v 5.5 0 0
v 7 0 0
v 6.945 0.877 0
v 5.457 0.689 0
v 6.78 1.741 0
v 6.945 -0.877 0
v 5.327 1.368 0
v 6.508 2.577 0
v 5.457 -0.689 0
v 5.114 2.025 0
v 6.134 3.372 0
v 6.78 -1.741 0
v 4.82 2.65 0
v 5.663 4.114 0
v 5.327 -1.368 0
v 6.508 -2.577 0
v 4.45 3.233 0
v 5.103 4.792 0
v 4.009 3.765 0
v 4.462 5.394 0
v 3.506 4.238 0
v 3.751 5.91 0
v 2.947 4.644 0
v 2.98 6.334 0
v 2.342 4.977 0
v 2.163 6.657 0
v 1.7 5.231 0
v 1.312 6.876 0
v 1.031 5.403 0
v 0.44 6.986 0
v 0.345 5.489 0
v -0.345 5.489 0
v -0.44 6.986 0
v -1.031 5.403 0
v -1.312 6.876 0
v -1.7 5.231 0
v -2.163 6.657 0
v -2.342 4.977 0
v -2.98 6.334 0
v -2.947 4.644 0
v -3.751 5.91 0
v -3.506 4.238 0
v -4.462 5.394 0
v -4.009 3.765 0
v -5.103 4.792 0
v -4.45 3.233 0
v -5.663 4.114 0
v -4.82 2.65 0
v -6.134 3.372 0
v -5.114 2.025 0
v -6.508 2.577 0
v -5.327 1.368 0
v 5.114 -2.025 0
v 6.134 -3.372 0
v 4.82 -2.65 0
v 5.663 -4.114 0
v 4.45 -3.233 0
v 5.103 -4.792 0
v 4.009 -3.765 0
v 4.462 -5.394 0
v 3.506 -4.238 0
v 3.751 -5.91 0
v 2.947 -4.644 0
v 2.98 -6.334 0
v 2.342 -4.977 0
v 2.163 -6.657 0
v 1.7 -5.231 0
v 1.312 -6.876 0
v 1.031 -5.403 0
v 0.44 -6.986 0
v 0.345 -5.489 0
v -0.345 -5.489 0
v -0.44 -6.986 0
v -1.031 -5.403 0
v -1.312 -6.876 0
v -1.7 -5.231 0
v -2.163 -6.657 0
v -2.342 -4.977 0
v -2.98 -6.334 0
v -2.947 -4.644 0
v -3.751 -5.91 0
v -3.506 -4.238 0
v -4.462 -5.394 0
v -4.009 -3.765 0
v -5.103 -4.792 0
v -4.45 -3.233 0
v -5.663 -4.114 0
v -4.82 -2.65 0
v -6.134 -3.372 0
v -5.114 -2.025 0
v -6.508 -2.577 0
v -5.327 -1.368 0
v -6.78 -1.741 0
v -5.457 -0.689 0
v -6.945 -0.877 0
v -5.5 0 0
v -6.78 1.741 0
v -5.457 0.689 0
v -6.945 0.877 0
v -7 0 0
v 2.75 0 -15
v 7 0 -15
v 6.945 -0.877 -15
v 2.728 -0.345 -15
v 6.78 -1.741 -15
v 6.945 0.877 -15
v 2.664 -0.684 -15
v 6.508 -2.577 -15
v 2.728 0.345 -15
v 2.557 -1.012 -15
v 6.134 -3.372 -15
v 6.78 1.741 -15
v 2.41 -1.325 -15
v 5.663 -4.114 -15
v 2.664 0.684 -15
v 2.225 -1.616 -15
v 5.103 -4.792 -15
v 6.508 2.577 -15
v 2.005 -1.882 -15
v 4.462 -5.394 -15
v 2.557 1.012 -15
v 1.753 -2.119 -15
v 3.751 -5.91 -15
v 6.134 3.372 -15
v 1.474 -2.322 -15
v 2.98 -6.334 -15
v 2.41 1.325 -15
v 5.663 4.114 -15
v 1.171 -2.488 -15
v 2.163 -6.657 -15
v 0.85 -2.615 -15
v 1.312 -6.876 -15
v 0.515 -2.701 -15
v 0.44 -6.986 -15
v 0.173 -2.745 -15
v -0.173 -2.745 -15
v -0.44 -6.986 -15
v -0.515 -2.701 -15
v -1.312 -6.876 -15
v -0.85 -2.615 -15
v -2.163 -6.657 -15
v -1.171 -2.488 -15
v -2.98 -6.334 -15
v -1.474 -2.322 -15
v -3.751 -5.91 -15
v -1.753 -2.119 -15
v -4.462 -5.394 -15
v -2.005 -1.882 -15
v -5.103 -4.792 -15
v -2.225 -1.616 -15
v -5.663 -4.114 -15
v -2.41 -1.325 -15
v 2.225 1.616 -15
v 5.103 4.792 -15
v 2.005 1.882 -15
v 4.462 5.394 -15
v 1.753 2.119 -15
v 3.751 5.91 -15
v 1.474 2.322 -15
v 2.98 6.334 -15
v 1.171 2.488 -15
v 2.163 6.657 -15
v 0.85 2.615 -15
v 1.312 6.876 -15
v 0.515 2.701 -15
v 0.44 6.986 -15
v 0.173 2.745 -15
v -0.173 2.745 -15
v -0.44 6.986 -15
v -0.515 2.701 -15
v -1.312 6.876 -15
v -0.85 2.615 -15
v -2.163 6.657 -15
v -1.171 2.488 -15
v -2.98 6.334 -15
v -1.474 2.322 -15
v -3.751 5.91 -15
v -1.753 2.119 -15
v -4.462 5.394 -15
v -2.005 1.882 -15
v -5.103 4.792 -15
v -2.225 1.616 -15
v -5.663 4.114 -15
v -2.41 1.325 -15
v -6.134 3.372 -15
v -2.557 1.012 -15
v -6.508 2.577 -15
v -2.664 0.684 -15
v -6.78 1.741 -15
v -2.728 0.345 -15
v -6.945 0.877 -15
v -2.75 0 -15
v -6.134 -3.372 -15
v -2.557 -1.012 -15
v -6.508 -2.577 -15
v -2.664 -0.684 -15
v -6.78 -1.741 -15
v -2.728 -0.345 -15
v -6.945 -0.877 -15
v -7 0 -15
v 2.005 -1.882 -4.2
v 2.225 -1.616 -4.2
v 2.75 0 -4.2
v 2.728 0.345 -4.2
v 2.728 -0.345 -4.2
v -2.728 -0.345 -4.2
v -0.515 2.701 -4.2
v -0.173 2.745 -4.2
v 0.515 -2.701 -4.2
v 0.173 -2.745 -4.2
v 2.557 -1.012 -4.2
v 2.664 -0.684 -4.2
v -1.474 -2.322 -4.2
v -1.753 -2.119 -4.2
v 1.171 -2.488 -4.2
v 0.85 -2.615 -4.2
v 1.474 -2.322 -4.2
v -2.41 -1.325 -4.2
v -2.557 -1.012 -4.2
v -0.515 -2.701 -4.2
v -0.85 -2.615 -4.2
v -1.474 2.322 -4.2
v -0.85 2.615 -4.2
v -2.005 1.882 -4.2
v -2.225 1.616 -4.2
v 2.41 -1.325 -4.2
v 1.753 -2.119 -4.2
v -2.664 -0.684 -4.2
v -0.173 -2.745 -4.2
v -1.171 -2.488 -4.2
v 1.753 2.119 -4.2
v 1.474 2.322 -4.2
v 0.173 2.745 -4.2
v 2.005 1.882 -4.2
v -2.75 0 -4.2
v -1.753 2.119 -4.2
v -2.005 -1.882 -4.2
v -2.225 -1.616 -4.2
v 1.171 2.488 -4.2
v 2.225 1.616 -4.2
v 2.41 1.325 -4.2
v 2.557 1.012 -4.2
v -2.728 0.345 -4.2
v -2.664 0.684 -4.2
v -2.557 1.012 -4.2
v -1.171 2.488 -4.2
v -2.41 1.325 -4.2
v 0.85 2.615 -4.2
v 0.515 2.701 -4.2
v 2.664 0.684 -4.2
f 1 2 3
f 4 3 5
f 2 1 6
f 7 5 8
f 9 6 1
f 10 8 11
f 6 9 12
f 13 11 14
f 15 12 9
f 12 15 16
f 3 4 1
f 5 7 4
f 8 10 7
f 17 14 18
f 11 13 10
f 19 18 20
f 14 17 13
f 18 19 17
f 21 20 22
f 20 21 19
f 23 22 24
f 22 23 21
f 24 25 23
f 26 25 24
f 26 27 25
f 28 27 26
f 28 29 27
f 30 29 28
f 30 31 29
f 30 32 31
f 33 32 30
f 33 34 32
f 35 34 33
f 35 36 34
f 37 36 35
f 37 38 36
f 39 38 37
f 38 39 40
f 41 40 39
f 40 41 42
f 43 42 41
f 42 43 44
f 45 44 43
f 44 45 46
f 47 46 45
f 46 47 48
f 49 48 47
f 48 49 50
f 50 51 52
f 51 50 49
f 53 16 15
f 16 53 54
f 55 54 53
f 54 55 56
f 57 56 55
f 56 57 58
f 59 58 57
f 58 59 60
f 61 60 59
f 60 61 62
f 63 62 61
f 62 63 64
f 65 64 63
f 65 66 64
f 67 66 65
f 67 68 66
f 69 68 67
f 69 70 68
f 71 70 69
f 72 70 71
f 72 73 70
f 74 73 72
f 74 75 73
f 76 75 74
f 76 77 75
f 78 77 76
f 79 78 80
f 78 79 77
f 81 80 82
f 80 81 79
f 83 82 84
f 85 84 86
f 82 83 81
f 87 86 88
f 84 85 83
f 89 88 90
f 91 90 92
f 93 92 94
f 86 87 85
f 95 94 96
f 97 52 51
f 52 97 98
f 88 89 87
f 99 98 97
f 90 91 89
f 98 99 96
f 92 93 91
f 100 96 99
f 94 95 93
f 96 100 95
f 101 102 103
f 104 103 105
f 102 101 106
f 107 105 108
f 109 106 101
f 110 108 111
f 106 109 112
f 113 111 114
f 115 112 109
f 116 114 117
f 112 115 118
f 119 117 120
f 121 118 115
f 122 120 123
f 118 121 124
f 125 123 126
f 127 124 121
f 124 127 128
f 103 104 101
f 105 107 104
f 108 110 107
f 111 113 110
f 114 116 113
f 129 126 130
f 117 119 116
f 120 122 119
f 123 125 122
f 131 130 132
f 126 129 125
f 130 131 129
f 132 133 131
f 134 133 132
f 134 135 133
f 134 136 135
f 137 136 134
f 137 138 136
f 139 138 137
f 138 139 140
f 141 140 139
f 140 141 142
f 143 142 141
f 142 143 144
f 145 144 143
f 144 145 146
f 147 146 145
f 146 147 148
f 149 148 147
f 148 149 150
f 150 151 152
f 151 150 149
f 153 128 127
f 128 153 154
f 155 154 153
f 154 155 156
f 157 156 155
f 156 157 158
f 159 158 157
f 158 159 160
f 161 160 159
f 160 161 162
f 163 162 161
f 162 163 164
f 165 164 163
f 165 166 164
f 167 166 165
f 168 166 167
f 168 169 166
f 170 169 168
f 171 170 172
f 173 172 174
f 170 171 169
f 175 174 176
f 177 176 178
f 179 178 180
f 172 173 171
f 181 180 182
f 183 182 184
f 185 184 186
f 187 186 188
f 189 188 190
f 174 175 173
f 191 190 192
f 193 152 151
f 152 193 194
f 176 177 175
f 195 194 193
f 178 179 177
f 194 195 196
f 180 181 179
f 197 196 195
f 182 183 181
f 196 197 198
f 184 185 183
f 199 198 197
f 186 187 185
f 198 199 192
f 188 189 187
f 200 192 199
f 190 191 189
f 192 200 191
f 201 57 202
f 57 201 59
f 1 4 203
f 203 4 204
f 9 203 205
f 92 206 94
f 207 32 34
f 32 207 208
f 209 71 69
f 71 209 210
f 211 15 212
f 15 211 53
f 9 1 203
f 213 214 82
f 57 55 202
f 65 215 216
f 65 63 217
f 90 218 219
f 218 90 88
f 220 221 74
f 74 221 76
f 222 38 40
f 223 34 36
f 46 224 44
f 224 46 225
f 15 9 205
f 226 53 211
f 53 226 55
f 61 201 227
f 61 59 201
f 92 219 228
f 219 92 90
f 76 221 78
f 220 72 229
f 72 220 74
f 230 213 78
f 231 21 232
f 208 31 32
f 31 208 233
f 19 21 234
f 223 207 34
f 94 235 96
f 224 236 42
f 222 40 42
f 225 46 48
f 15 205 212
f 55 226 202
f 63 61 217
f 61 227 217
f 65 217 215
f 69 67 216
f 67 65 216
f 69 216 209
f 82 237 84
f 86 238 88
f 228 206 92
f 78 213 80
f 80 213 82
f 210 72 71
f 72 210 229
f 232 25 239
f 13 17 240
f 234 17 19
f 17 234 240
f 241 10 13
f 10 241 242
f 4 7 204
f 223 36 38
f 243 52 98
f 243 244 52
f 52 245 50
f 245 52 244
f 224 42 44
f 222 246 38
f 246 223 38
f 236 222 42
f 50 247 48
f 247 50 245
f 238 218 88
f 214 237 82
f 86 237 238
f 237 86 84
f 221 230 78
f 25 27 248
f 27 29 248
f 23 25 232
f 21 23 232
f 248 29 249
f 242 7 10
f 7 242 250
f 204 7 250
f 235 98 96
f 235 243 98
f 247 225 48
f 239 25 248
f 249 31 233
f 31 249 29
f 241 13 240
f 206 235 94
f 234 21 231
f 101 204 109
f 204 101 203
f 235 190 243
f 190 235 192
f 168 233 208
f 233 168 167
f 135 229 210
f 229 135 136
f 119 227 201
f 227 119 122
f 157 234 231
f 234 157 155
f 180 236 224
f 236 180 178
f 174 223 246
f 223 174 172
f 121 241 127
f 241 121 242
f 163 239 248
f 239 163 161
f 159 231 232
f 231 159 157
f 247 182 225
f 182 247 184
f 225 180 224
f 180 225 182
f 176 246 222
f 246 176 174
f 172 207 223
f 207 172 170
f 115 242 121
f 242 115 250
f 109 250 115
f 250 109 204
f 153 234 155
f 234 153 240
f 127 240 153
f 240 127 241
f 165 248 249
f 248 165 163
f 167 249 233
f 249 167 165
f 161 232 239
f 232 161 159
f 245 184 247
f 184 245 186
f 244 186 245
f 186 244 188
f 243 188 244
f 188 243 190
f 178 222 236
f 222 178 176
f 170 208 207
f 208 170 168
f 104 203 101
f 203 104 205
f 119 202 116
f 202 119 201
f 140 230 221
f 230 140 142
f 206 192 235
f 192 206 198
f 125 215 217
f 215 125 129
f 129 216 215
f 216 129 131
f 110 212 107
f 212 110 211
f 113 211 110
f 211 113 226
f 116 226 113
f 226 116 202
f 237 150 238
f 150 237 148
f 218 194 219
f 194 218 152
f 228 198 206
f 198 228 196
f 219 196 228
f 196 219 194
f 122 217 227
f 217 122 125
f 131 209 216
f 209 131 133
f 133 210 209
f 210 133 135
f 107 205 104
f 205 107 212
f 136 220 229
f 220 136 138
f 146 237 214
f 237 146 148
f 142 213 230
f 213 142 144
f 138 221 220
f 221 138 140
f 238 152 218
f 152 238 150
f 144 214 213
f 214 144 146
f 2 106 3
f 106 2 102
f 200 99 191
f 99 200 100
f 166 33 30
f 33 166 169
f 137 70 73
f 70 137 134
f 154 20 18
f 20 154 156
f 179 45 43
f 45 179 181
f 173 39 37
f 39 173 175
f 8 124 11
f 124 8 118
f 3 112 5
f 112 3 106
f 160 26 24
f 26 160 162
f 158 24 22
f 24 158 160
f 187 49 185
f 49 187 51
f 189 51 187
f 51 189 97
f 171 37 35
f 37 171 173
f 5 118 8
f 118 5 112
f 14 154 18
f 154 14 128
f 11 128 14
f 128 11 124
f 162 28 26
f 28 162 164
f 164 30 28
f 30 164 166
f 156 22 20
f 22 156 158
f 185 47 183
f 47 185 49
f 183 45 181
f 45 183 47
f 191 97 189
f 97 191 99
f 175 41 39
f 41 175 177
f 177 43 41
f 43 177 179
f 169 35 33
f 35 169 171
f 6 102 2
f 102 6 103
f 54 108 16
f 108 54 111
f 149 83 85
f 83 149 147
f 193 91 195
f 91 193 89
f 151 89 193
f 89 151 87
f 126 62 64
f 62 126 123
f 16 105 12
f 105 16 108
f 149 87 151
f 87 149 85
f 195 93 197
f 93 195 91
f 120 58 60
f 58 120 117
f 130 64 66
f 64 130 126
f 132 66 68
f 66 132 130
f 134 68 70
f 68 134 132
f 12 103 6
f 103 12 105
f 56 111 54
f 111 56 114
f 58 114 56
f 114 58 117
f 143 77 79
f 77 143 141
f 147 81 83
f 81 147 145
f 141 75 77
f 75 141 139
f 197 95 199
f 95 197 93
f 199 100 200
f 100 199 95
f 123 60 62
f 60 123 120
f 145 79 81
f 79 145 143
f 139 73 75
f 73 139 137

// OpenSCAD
$fn = 50;


difference() {
	union() {
		translate(v = [0, 0, -15.0000000000]) {
			cylinder(h = 15, r = 7.0000000000);
		}
	}
	union() {
		translate(v = [0, 0, 0]) {
			rotate(a = [0, 0, 0]) {
				difference() {
					union() {
						#translate(v = [0, 0, -15.0000000000]) {
							cylinder(h = 15, r = 2.2500000000);
						}
						#translate(v = [0, 0, -4.2000000000]) {
							cylinder(h = 4.2000000000, r = 7.0000000000, r1 = 2.7500000000, r2 = 5.5000000000);
						}
						#translate(v = [0, 0, -15.0000000000]) {
							cylinder(h = 15, r = 2.7500000000);
						}
						#translate(v = [0, 0, -15.0000000000]) {
							cylinder(h = 15, r = 2.2500000000);
						}
					}
					union();
				}
			}
		}
	}
}
